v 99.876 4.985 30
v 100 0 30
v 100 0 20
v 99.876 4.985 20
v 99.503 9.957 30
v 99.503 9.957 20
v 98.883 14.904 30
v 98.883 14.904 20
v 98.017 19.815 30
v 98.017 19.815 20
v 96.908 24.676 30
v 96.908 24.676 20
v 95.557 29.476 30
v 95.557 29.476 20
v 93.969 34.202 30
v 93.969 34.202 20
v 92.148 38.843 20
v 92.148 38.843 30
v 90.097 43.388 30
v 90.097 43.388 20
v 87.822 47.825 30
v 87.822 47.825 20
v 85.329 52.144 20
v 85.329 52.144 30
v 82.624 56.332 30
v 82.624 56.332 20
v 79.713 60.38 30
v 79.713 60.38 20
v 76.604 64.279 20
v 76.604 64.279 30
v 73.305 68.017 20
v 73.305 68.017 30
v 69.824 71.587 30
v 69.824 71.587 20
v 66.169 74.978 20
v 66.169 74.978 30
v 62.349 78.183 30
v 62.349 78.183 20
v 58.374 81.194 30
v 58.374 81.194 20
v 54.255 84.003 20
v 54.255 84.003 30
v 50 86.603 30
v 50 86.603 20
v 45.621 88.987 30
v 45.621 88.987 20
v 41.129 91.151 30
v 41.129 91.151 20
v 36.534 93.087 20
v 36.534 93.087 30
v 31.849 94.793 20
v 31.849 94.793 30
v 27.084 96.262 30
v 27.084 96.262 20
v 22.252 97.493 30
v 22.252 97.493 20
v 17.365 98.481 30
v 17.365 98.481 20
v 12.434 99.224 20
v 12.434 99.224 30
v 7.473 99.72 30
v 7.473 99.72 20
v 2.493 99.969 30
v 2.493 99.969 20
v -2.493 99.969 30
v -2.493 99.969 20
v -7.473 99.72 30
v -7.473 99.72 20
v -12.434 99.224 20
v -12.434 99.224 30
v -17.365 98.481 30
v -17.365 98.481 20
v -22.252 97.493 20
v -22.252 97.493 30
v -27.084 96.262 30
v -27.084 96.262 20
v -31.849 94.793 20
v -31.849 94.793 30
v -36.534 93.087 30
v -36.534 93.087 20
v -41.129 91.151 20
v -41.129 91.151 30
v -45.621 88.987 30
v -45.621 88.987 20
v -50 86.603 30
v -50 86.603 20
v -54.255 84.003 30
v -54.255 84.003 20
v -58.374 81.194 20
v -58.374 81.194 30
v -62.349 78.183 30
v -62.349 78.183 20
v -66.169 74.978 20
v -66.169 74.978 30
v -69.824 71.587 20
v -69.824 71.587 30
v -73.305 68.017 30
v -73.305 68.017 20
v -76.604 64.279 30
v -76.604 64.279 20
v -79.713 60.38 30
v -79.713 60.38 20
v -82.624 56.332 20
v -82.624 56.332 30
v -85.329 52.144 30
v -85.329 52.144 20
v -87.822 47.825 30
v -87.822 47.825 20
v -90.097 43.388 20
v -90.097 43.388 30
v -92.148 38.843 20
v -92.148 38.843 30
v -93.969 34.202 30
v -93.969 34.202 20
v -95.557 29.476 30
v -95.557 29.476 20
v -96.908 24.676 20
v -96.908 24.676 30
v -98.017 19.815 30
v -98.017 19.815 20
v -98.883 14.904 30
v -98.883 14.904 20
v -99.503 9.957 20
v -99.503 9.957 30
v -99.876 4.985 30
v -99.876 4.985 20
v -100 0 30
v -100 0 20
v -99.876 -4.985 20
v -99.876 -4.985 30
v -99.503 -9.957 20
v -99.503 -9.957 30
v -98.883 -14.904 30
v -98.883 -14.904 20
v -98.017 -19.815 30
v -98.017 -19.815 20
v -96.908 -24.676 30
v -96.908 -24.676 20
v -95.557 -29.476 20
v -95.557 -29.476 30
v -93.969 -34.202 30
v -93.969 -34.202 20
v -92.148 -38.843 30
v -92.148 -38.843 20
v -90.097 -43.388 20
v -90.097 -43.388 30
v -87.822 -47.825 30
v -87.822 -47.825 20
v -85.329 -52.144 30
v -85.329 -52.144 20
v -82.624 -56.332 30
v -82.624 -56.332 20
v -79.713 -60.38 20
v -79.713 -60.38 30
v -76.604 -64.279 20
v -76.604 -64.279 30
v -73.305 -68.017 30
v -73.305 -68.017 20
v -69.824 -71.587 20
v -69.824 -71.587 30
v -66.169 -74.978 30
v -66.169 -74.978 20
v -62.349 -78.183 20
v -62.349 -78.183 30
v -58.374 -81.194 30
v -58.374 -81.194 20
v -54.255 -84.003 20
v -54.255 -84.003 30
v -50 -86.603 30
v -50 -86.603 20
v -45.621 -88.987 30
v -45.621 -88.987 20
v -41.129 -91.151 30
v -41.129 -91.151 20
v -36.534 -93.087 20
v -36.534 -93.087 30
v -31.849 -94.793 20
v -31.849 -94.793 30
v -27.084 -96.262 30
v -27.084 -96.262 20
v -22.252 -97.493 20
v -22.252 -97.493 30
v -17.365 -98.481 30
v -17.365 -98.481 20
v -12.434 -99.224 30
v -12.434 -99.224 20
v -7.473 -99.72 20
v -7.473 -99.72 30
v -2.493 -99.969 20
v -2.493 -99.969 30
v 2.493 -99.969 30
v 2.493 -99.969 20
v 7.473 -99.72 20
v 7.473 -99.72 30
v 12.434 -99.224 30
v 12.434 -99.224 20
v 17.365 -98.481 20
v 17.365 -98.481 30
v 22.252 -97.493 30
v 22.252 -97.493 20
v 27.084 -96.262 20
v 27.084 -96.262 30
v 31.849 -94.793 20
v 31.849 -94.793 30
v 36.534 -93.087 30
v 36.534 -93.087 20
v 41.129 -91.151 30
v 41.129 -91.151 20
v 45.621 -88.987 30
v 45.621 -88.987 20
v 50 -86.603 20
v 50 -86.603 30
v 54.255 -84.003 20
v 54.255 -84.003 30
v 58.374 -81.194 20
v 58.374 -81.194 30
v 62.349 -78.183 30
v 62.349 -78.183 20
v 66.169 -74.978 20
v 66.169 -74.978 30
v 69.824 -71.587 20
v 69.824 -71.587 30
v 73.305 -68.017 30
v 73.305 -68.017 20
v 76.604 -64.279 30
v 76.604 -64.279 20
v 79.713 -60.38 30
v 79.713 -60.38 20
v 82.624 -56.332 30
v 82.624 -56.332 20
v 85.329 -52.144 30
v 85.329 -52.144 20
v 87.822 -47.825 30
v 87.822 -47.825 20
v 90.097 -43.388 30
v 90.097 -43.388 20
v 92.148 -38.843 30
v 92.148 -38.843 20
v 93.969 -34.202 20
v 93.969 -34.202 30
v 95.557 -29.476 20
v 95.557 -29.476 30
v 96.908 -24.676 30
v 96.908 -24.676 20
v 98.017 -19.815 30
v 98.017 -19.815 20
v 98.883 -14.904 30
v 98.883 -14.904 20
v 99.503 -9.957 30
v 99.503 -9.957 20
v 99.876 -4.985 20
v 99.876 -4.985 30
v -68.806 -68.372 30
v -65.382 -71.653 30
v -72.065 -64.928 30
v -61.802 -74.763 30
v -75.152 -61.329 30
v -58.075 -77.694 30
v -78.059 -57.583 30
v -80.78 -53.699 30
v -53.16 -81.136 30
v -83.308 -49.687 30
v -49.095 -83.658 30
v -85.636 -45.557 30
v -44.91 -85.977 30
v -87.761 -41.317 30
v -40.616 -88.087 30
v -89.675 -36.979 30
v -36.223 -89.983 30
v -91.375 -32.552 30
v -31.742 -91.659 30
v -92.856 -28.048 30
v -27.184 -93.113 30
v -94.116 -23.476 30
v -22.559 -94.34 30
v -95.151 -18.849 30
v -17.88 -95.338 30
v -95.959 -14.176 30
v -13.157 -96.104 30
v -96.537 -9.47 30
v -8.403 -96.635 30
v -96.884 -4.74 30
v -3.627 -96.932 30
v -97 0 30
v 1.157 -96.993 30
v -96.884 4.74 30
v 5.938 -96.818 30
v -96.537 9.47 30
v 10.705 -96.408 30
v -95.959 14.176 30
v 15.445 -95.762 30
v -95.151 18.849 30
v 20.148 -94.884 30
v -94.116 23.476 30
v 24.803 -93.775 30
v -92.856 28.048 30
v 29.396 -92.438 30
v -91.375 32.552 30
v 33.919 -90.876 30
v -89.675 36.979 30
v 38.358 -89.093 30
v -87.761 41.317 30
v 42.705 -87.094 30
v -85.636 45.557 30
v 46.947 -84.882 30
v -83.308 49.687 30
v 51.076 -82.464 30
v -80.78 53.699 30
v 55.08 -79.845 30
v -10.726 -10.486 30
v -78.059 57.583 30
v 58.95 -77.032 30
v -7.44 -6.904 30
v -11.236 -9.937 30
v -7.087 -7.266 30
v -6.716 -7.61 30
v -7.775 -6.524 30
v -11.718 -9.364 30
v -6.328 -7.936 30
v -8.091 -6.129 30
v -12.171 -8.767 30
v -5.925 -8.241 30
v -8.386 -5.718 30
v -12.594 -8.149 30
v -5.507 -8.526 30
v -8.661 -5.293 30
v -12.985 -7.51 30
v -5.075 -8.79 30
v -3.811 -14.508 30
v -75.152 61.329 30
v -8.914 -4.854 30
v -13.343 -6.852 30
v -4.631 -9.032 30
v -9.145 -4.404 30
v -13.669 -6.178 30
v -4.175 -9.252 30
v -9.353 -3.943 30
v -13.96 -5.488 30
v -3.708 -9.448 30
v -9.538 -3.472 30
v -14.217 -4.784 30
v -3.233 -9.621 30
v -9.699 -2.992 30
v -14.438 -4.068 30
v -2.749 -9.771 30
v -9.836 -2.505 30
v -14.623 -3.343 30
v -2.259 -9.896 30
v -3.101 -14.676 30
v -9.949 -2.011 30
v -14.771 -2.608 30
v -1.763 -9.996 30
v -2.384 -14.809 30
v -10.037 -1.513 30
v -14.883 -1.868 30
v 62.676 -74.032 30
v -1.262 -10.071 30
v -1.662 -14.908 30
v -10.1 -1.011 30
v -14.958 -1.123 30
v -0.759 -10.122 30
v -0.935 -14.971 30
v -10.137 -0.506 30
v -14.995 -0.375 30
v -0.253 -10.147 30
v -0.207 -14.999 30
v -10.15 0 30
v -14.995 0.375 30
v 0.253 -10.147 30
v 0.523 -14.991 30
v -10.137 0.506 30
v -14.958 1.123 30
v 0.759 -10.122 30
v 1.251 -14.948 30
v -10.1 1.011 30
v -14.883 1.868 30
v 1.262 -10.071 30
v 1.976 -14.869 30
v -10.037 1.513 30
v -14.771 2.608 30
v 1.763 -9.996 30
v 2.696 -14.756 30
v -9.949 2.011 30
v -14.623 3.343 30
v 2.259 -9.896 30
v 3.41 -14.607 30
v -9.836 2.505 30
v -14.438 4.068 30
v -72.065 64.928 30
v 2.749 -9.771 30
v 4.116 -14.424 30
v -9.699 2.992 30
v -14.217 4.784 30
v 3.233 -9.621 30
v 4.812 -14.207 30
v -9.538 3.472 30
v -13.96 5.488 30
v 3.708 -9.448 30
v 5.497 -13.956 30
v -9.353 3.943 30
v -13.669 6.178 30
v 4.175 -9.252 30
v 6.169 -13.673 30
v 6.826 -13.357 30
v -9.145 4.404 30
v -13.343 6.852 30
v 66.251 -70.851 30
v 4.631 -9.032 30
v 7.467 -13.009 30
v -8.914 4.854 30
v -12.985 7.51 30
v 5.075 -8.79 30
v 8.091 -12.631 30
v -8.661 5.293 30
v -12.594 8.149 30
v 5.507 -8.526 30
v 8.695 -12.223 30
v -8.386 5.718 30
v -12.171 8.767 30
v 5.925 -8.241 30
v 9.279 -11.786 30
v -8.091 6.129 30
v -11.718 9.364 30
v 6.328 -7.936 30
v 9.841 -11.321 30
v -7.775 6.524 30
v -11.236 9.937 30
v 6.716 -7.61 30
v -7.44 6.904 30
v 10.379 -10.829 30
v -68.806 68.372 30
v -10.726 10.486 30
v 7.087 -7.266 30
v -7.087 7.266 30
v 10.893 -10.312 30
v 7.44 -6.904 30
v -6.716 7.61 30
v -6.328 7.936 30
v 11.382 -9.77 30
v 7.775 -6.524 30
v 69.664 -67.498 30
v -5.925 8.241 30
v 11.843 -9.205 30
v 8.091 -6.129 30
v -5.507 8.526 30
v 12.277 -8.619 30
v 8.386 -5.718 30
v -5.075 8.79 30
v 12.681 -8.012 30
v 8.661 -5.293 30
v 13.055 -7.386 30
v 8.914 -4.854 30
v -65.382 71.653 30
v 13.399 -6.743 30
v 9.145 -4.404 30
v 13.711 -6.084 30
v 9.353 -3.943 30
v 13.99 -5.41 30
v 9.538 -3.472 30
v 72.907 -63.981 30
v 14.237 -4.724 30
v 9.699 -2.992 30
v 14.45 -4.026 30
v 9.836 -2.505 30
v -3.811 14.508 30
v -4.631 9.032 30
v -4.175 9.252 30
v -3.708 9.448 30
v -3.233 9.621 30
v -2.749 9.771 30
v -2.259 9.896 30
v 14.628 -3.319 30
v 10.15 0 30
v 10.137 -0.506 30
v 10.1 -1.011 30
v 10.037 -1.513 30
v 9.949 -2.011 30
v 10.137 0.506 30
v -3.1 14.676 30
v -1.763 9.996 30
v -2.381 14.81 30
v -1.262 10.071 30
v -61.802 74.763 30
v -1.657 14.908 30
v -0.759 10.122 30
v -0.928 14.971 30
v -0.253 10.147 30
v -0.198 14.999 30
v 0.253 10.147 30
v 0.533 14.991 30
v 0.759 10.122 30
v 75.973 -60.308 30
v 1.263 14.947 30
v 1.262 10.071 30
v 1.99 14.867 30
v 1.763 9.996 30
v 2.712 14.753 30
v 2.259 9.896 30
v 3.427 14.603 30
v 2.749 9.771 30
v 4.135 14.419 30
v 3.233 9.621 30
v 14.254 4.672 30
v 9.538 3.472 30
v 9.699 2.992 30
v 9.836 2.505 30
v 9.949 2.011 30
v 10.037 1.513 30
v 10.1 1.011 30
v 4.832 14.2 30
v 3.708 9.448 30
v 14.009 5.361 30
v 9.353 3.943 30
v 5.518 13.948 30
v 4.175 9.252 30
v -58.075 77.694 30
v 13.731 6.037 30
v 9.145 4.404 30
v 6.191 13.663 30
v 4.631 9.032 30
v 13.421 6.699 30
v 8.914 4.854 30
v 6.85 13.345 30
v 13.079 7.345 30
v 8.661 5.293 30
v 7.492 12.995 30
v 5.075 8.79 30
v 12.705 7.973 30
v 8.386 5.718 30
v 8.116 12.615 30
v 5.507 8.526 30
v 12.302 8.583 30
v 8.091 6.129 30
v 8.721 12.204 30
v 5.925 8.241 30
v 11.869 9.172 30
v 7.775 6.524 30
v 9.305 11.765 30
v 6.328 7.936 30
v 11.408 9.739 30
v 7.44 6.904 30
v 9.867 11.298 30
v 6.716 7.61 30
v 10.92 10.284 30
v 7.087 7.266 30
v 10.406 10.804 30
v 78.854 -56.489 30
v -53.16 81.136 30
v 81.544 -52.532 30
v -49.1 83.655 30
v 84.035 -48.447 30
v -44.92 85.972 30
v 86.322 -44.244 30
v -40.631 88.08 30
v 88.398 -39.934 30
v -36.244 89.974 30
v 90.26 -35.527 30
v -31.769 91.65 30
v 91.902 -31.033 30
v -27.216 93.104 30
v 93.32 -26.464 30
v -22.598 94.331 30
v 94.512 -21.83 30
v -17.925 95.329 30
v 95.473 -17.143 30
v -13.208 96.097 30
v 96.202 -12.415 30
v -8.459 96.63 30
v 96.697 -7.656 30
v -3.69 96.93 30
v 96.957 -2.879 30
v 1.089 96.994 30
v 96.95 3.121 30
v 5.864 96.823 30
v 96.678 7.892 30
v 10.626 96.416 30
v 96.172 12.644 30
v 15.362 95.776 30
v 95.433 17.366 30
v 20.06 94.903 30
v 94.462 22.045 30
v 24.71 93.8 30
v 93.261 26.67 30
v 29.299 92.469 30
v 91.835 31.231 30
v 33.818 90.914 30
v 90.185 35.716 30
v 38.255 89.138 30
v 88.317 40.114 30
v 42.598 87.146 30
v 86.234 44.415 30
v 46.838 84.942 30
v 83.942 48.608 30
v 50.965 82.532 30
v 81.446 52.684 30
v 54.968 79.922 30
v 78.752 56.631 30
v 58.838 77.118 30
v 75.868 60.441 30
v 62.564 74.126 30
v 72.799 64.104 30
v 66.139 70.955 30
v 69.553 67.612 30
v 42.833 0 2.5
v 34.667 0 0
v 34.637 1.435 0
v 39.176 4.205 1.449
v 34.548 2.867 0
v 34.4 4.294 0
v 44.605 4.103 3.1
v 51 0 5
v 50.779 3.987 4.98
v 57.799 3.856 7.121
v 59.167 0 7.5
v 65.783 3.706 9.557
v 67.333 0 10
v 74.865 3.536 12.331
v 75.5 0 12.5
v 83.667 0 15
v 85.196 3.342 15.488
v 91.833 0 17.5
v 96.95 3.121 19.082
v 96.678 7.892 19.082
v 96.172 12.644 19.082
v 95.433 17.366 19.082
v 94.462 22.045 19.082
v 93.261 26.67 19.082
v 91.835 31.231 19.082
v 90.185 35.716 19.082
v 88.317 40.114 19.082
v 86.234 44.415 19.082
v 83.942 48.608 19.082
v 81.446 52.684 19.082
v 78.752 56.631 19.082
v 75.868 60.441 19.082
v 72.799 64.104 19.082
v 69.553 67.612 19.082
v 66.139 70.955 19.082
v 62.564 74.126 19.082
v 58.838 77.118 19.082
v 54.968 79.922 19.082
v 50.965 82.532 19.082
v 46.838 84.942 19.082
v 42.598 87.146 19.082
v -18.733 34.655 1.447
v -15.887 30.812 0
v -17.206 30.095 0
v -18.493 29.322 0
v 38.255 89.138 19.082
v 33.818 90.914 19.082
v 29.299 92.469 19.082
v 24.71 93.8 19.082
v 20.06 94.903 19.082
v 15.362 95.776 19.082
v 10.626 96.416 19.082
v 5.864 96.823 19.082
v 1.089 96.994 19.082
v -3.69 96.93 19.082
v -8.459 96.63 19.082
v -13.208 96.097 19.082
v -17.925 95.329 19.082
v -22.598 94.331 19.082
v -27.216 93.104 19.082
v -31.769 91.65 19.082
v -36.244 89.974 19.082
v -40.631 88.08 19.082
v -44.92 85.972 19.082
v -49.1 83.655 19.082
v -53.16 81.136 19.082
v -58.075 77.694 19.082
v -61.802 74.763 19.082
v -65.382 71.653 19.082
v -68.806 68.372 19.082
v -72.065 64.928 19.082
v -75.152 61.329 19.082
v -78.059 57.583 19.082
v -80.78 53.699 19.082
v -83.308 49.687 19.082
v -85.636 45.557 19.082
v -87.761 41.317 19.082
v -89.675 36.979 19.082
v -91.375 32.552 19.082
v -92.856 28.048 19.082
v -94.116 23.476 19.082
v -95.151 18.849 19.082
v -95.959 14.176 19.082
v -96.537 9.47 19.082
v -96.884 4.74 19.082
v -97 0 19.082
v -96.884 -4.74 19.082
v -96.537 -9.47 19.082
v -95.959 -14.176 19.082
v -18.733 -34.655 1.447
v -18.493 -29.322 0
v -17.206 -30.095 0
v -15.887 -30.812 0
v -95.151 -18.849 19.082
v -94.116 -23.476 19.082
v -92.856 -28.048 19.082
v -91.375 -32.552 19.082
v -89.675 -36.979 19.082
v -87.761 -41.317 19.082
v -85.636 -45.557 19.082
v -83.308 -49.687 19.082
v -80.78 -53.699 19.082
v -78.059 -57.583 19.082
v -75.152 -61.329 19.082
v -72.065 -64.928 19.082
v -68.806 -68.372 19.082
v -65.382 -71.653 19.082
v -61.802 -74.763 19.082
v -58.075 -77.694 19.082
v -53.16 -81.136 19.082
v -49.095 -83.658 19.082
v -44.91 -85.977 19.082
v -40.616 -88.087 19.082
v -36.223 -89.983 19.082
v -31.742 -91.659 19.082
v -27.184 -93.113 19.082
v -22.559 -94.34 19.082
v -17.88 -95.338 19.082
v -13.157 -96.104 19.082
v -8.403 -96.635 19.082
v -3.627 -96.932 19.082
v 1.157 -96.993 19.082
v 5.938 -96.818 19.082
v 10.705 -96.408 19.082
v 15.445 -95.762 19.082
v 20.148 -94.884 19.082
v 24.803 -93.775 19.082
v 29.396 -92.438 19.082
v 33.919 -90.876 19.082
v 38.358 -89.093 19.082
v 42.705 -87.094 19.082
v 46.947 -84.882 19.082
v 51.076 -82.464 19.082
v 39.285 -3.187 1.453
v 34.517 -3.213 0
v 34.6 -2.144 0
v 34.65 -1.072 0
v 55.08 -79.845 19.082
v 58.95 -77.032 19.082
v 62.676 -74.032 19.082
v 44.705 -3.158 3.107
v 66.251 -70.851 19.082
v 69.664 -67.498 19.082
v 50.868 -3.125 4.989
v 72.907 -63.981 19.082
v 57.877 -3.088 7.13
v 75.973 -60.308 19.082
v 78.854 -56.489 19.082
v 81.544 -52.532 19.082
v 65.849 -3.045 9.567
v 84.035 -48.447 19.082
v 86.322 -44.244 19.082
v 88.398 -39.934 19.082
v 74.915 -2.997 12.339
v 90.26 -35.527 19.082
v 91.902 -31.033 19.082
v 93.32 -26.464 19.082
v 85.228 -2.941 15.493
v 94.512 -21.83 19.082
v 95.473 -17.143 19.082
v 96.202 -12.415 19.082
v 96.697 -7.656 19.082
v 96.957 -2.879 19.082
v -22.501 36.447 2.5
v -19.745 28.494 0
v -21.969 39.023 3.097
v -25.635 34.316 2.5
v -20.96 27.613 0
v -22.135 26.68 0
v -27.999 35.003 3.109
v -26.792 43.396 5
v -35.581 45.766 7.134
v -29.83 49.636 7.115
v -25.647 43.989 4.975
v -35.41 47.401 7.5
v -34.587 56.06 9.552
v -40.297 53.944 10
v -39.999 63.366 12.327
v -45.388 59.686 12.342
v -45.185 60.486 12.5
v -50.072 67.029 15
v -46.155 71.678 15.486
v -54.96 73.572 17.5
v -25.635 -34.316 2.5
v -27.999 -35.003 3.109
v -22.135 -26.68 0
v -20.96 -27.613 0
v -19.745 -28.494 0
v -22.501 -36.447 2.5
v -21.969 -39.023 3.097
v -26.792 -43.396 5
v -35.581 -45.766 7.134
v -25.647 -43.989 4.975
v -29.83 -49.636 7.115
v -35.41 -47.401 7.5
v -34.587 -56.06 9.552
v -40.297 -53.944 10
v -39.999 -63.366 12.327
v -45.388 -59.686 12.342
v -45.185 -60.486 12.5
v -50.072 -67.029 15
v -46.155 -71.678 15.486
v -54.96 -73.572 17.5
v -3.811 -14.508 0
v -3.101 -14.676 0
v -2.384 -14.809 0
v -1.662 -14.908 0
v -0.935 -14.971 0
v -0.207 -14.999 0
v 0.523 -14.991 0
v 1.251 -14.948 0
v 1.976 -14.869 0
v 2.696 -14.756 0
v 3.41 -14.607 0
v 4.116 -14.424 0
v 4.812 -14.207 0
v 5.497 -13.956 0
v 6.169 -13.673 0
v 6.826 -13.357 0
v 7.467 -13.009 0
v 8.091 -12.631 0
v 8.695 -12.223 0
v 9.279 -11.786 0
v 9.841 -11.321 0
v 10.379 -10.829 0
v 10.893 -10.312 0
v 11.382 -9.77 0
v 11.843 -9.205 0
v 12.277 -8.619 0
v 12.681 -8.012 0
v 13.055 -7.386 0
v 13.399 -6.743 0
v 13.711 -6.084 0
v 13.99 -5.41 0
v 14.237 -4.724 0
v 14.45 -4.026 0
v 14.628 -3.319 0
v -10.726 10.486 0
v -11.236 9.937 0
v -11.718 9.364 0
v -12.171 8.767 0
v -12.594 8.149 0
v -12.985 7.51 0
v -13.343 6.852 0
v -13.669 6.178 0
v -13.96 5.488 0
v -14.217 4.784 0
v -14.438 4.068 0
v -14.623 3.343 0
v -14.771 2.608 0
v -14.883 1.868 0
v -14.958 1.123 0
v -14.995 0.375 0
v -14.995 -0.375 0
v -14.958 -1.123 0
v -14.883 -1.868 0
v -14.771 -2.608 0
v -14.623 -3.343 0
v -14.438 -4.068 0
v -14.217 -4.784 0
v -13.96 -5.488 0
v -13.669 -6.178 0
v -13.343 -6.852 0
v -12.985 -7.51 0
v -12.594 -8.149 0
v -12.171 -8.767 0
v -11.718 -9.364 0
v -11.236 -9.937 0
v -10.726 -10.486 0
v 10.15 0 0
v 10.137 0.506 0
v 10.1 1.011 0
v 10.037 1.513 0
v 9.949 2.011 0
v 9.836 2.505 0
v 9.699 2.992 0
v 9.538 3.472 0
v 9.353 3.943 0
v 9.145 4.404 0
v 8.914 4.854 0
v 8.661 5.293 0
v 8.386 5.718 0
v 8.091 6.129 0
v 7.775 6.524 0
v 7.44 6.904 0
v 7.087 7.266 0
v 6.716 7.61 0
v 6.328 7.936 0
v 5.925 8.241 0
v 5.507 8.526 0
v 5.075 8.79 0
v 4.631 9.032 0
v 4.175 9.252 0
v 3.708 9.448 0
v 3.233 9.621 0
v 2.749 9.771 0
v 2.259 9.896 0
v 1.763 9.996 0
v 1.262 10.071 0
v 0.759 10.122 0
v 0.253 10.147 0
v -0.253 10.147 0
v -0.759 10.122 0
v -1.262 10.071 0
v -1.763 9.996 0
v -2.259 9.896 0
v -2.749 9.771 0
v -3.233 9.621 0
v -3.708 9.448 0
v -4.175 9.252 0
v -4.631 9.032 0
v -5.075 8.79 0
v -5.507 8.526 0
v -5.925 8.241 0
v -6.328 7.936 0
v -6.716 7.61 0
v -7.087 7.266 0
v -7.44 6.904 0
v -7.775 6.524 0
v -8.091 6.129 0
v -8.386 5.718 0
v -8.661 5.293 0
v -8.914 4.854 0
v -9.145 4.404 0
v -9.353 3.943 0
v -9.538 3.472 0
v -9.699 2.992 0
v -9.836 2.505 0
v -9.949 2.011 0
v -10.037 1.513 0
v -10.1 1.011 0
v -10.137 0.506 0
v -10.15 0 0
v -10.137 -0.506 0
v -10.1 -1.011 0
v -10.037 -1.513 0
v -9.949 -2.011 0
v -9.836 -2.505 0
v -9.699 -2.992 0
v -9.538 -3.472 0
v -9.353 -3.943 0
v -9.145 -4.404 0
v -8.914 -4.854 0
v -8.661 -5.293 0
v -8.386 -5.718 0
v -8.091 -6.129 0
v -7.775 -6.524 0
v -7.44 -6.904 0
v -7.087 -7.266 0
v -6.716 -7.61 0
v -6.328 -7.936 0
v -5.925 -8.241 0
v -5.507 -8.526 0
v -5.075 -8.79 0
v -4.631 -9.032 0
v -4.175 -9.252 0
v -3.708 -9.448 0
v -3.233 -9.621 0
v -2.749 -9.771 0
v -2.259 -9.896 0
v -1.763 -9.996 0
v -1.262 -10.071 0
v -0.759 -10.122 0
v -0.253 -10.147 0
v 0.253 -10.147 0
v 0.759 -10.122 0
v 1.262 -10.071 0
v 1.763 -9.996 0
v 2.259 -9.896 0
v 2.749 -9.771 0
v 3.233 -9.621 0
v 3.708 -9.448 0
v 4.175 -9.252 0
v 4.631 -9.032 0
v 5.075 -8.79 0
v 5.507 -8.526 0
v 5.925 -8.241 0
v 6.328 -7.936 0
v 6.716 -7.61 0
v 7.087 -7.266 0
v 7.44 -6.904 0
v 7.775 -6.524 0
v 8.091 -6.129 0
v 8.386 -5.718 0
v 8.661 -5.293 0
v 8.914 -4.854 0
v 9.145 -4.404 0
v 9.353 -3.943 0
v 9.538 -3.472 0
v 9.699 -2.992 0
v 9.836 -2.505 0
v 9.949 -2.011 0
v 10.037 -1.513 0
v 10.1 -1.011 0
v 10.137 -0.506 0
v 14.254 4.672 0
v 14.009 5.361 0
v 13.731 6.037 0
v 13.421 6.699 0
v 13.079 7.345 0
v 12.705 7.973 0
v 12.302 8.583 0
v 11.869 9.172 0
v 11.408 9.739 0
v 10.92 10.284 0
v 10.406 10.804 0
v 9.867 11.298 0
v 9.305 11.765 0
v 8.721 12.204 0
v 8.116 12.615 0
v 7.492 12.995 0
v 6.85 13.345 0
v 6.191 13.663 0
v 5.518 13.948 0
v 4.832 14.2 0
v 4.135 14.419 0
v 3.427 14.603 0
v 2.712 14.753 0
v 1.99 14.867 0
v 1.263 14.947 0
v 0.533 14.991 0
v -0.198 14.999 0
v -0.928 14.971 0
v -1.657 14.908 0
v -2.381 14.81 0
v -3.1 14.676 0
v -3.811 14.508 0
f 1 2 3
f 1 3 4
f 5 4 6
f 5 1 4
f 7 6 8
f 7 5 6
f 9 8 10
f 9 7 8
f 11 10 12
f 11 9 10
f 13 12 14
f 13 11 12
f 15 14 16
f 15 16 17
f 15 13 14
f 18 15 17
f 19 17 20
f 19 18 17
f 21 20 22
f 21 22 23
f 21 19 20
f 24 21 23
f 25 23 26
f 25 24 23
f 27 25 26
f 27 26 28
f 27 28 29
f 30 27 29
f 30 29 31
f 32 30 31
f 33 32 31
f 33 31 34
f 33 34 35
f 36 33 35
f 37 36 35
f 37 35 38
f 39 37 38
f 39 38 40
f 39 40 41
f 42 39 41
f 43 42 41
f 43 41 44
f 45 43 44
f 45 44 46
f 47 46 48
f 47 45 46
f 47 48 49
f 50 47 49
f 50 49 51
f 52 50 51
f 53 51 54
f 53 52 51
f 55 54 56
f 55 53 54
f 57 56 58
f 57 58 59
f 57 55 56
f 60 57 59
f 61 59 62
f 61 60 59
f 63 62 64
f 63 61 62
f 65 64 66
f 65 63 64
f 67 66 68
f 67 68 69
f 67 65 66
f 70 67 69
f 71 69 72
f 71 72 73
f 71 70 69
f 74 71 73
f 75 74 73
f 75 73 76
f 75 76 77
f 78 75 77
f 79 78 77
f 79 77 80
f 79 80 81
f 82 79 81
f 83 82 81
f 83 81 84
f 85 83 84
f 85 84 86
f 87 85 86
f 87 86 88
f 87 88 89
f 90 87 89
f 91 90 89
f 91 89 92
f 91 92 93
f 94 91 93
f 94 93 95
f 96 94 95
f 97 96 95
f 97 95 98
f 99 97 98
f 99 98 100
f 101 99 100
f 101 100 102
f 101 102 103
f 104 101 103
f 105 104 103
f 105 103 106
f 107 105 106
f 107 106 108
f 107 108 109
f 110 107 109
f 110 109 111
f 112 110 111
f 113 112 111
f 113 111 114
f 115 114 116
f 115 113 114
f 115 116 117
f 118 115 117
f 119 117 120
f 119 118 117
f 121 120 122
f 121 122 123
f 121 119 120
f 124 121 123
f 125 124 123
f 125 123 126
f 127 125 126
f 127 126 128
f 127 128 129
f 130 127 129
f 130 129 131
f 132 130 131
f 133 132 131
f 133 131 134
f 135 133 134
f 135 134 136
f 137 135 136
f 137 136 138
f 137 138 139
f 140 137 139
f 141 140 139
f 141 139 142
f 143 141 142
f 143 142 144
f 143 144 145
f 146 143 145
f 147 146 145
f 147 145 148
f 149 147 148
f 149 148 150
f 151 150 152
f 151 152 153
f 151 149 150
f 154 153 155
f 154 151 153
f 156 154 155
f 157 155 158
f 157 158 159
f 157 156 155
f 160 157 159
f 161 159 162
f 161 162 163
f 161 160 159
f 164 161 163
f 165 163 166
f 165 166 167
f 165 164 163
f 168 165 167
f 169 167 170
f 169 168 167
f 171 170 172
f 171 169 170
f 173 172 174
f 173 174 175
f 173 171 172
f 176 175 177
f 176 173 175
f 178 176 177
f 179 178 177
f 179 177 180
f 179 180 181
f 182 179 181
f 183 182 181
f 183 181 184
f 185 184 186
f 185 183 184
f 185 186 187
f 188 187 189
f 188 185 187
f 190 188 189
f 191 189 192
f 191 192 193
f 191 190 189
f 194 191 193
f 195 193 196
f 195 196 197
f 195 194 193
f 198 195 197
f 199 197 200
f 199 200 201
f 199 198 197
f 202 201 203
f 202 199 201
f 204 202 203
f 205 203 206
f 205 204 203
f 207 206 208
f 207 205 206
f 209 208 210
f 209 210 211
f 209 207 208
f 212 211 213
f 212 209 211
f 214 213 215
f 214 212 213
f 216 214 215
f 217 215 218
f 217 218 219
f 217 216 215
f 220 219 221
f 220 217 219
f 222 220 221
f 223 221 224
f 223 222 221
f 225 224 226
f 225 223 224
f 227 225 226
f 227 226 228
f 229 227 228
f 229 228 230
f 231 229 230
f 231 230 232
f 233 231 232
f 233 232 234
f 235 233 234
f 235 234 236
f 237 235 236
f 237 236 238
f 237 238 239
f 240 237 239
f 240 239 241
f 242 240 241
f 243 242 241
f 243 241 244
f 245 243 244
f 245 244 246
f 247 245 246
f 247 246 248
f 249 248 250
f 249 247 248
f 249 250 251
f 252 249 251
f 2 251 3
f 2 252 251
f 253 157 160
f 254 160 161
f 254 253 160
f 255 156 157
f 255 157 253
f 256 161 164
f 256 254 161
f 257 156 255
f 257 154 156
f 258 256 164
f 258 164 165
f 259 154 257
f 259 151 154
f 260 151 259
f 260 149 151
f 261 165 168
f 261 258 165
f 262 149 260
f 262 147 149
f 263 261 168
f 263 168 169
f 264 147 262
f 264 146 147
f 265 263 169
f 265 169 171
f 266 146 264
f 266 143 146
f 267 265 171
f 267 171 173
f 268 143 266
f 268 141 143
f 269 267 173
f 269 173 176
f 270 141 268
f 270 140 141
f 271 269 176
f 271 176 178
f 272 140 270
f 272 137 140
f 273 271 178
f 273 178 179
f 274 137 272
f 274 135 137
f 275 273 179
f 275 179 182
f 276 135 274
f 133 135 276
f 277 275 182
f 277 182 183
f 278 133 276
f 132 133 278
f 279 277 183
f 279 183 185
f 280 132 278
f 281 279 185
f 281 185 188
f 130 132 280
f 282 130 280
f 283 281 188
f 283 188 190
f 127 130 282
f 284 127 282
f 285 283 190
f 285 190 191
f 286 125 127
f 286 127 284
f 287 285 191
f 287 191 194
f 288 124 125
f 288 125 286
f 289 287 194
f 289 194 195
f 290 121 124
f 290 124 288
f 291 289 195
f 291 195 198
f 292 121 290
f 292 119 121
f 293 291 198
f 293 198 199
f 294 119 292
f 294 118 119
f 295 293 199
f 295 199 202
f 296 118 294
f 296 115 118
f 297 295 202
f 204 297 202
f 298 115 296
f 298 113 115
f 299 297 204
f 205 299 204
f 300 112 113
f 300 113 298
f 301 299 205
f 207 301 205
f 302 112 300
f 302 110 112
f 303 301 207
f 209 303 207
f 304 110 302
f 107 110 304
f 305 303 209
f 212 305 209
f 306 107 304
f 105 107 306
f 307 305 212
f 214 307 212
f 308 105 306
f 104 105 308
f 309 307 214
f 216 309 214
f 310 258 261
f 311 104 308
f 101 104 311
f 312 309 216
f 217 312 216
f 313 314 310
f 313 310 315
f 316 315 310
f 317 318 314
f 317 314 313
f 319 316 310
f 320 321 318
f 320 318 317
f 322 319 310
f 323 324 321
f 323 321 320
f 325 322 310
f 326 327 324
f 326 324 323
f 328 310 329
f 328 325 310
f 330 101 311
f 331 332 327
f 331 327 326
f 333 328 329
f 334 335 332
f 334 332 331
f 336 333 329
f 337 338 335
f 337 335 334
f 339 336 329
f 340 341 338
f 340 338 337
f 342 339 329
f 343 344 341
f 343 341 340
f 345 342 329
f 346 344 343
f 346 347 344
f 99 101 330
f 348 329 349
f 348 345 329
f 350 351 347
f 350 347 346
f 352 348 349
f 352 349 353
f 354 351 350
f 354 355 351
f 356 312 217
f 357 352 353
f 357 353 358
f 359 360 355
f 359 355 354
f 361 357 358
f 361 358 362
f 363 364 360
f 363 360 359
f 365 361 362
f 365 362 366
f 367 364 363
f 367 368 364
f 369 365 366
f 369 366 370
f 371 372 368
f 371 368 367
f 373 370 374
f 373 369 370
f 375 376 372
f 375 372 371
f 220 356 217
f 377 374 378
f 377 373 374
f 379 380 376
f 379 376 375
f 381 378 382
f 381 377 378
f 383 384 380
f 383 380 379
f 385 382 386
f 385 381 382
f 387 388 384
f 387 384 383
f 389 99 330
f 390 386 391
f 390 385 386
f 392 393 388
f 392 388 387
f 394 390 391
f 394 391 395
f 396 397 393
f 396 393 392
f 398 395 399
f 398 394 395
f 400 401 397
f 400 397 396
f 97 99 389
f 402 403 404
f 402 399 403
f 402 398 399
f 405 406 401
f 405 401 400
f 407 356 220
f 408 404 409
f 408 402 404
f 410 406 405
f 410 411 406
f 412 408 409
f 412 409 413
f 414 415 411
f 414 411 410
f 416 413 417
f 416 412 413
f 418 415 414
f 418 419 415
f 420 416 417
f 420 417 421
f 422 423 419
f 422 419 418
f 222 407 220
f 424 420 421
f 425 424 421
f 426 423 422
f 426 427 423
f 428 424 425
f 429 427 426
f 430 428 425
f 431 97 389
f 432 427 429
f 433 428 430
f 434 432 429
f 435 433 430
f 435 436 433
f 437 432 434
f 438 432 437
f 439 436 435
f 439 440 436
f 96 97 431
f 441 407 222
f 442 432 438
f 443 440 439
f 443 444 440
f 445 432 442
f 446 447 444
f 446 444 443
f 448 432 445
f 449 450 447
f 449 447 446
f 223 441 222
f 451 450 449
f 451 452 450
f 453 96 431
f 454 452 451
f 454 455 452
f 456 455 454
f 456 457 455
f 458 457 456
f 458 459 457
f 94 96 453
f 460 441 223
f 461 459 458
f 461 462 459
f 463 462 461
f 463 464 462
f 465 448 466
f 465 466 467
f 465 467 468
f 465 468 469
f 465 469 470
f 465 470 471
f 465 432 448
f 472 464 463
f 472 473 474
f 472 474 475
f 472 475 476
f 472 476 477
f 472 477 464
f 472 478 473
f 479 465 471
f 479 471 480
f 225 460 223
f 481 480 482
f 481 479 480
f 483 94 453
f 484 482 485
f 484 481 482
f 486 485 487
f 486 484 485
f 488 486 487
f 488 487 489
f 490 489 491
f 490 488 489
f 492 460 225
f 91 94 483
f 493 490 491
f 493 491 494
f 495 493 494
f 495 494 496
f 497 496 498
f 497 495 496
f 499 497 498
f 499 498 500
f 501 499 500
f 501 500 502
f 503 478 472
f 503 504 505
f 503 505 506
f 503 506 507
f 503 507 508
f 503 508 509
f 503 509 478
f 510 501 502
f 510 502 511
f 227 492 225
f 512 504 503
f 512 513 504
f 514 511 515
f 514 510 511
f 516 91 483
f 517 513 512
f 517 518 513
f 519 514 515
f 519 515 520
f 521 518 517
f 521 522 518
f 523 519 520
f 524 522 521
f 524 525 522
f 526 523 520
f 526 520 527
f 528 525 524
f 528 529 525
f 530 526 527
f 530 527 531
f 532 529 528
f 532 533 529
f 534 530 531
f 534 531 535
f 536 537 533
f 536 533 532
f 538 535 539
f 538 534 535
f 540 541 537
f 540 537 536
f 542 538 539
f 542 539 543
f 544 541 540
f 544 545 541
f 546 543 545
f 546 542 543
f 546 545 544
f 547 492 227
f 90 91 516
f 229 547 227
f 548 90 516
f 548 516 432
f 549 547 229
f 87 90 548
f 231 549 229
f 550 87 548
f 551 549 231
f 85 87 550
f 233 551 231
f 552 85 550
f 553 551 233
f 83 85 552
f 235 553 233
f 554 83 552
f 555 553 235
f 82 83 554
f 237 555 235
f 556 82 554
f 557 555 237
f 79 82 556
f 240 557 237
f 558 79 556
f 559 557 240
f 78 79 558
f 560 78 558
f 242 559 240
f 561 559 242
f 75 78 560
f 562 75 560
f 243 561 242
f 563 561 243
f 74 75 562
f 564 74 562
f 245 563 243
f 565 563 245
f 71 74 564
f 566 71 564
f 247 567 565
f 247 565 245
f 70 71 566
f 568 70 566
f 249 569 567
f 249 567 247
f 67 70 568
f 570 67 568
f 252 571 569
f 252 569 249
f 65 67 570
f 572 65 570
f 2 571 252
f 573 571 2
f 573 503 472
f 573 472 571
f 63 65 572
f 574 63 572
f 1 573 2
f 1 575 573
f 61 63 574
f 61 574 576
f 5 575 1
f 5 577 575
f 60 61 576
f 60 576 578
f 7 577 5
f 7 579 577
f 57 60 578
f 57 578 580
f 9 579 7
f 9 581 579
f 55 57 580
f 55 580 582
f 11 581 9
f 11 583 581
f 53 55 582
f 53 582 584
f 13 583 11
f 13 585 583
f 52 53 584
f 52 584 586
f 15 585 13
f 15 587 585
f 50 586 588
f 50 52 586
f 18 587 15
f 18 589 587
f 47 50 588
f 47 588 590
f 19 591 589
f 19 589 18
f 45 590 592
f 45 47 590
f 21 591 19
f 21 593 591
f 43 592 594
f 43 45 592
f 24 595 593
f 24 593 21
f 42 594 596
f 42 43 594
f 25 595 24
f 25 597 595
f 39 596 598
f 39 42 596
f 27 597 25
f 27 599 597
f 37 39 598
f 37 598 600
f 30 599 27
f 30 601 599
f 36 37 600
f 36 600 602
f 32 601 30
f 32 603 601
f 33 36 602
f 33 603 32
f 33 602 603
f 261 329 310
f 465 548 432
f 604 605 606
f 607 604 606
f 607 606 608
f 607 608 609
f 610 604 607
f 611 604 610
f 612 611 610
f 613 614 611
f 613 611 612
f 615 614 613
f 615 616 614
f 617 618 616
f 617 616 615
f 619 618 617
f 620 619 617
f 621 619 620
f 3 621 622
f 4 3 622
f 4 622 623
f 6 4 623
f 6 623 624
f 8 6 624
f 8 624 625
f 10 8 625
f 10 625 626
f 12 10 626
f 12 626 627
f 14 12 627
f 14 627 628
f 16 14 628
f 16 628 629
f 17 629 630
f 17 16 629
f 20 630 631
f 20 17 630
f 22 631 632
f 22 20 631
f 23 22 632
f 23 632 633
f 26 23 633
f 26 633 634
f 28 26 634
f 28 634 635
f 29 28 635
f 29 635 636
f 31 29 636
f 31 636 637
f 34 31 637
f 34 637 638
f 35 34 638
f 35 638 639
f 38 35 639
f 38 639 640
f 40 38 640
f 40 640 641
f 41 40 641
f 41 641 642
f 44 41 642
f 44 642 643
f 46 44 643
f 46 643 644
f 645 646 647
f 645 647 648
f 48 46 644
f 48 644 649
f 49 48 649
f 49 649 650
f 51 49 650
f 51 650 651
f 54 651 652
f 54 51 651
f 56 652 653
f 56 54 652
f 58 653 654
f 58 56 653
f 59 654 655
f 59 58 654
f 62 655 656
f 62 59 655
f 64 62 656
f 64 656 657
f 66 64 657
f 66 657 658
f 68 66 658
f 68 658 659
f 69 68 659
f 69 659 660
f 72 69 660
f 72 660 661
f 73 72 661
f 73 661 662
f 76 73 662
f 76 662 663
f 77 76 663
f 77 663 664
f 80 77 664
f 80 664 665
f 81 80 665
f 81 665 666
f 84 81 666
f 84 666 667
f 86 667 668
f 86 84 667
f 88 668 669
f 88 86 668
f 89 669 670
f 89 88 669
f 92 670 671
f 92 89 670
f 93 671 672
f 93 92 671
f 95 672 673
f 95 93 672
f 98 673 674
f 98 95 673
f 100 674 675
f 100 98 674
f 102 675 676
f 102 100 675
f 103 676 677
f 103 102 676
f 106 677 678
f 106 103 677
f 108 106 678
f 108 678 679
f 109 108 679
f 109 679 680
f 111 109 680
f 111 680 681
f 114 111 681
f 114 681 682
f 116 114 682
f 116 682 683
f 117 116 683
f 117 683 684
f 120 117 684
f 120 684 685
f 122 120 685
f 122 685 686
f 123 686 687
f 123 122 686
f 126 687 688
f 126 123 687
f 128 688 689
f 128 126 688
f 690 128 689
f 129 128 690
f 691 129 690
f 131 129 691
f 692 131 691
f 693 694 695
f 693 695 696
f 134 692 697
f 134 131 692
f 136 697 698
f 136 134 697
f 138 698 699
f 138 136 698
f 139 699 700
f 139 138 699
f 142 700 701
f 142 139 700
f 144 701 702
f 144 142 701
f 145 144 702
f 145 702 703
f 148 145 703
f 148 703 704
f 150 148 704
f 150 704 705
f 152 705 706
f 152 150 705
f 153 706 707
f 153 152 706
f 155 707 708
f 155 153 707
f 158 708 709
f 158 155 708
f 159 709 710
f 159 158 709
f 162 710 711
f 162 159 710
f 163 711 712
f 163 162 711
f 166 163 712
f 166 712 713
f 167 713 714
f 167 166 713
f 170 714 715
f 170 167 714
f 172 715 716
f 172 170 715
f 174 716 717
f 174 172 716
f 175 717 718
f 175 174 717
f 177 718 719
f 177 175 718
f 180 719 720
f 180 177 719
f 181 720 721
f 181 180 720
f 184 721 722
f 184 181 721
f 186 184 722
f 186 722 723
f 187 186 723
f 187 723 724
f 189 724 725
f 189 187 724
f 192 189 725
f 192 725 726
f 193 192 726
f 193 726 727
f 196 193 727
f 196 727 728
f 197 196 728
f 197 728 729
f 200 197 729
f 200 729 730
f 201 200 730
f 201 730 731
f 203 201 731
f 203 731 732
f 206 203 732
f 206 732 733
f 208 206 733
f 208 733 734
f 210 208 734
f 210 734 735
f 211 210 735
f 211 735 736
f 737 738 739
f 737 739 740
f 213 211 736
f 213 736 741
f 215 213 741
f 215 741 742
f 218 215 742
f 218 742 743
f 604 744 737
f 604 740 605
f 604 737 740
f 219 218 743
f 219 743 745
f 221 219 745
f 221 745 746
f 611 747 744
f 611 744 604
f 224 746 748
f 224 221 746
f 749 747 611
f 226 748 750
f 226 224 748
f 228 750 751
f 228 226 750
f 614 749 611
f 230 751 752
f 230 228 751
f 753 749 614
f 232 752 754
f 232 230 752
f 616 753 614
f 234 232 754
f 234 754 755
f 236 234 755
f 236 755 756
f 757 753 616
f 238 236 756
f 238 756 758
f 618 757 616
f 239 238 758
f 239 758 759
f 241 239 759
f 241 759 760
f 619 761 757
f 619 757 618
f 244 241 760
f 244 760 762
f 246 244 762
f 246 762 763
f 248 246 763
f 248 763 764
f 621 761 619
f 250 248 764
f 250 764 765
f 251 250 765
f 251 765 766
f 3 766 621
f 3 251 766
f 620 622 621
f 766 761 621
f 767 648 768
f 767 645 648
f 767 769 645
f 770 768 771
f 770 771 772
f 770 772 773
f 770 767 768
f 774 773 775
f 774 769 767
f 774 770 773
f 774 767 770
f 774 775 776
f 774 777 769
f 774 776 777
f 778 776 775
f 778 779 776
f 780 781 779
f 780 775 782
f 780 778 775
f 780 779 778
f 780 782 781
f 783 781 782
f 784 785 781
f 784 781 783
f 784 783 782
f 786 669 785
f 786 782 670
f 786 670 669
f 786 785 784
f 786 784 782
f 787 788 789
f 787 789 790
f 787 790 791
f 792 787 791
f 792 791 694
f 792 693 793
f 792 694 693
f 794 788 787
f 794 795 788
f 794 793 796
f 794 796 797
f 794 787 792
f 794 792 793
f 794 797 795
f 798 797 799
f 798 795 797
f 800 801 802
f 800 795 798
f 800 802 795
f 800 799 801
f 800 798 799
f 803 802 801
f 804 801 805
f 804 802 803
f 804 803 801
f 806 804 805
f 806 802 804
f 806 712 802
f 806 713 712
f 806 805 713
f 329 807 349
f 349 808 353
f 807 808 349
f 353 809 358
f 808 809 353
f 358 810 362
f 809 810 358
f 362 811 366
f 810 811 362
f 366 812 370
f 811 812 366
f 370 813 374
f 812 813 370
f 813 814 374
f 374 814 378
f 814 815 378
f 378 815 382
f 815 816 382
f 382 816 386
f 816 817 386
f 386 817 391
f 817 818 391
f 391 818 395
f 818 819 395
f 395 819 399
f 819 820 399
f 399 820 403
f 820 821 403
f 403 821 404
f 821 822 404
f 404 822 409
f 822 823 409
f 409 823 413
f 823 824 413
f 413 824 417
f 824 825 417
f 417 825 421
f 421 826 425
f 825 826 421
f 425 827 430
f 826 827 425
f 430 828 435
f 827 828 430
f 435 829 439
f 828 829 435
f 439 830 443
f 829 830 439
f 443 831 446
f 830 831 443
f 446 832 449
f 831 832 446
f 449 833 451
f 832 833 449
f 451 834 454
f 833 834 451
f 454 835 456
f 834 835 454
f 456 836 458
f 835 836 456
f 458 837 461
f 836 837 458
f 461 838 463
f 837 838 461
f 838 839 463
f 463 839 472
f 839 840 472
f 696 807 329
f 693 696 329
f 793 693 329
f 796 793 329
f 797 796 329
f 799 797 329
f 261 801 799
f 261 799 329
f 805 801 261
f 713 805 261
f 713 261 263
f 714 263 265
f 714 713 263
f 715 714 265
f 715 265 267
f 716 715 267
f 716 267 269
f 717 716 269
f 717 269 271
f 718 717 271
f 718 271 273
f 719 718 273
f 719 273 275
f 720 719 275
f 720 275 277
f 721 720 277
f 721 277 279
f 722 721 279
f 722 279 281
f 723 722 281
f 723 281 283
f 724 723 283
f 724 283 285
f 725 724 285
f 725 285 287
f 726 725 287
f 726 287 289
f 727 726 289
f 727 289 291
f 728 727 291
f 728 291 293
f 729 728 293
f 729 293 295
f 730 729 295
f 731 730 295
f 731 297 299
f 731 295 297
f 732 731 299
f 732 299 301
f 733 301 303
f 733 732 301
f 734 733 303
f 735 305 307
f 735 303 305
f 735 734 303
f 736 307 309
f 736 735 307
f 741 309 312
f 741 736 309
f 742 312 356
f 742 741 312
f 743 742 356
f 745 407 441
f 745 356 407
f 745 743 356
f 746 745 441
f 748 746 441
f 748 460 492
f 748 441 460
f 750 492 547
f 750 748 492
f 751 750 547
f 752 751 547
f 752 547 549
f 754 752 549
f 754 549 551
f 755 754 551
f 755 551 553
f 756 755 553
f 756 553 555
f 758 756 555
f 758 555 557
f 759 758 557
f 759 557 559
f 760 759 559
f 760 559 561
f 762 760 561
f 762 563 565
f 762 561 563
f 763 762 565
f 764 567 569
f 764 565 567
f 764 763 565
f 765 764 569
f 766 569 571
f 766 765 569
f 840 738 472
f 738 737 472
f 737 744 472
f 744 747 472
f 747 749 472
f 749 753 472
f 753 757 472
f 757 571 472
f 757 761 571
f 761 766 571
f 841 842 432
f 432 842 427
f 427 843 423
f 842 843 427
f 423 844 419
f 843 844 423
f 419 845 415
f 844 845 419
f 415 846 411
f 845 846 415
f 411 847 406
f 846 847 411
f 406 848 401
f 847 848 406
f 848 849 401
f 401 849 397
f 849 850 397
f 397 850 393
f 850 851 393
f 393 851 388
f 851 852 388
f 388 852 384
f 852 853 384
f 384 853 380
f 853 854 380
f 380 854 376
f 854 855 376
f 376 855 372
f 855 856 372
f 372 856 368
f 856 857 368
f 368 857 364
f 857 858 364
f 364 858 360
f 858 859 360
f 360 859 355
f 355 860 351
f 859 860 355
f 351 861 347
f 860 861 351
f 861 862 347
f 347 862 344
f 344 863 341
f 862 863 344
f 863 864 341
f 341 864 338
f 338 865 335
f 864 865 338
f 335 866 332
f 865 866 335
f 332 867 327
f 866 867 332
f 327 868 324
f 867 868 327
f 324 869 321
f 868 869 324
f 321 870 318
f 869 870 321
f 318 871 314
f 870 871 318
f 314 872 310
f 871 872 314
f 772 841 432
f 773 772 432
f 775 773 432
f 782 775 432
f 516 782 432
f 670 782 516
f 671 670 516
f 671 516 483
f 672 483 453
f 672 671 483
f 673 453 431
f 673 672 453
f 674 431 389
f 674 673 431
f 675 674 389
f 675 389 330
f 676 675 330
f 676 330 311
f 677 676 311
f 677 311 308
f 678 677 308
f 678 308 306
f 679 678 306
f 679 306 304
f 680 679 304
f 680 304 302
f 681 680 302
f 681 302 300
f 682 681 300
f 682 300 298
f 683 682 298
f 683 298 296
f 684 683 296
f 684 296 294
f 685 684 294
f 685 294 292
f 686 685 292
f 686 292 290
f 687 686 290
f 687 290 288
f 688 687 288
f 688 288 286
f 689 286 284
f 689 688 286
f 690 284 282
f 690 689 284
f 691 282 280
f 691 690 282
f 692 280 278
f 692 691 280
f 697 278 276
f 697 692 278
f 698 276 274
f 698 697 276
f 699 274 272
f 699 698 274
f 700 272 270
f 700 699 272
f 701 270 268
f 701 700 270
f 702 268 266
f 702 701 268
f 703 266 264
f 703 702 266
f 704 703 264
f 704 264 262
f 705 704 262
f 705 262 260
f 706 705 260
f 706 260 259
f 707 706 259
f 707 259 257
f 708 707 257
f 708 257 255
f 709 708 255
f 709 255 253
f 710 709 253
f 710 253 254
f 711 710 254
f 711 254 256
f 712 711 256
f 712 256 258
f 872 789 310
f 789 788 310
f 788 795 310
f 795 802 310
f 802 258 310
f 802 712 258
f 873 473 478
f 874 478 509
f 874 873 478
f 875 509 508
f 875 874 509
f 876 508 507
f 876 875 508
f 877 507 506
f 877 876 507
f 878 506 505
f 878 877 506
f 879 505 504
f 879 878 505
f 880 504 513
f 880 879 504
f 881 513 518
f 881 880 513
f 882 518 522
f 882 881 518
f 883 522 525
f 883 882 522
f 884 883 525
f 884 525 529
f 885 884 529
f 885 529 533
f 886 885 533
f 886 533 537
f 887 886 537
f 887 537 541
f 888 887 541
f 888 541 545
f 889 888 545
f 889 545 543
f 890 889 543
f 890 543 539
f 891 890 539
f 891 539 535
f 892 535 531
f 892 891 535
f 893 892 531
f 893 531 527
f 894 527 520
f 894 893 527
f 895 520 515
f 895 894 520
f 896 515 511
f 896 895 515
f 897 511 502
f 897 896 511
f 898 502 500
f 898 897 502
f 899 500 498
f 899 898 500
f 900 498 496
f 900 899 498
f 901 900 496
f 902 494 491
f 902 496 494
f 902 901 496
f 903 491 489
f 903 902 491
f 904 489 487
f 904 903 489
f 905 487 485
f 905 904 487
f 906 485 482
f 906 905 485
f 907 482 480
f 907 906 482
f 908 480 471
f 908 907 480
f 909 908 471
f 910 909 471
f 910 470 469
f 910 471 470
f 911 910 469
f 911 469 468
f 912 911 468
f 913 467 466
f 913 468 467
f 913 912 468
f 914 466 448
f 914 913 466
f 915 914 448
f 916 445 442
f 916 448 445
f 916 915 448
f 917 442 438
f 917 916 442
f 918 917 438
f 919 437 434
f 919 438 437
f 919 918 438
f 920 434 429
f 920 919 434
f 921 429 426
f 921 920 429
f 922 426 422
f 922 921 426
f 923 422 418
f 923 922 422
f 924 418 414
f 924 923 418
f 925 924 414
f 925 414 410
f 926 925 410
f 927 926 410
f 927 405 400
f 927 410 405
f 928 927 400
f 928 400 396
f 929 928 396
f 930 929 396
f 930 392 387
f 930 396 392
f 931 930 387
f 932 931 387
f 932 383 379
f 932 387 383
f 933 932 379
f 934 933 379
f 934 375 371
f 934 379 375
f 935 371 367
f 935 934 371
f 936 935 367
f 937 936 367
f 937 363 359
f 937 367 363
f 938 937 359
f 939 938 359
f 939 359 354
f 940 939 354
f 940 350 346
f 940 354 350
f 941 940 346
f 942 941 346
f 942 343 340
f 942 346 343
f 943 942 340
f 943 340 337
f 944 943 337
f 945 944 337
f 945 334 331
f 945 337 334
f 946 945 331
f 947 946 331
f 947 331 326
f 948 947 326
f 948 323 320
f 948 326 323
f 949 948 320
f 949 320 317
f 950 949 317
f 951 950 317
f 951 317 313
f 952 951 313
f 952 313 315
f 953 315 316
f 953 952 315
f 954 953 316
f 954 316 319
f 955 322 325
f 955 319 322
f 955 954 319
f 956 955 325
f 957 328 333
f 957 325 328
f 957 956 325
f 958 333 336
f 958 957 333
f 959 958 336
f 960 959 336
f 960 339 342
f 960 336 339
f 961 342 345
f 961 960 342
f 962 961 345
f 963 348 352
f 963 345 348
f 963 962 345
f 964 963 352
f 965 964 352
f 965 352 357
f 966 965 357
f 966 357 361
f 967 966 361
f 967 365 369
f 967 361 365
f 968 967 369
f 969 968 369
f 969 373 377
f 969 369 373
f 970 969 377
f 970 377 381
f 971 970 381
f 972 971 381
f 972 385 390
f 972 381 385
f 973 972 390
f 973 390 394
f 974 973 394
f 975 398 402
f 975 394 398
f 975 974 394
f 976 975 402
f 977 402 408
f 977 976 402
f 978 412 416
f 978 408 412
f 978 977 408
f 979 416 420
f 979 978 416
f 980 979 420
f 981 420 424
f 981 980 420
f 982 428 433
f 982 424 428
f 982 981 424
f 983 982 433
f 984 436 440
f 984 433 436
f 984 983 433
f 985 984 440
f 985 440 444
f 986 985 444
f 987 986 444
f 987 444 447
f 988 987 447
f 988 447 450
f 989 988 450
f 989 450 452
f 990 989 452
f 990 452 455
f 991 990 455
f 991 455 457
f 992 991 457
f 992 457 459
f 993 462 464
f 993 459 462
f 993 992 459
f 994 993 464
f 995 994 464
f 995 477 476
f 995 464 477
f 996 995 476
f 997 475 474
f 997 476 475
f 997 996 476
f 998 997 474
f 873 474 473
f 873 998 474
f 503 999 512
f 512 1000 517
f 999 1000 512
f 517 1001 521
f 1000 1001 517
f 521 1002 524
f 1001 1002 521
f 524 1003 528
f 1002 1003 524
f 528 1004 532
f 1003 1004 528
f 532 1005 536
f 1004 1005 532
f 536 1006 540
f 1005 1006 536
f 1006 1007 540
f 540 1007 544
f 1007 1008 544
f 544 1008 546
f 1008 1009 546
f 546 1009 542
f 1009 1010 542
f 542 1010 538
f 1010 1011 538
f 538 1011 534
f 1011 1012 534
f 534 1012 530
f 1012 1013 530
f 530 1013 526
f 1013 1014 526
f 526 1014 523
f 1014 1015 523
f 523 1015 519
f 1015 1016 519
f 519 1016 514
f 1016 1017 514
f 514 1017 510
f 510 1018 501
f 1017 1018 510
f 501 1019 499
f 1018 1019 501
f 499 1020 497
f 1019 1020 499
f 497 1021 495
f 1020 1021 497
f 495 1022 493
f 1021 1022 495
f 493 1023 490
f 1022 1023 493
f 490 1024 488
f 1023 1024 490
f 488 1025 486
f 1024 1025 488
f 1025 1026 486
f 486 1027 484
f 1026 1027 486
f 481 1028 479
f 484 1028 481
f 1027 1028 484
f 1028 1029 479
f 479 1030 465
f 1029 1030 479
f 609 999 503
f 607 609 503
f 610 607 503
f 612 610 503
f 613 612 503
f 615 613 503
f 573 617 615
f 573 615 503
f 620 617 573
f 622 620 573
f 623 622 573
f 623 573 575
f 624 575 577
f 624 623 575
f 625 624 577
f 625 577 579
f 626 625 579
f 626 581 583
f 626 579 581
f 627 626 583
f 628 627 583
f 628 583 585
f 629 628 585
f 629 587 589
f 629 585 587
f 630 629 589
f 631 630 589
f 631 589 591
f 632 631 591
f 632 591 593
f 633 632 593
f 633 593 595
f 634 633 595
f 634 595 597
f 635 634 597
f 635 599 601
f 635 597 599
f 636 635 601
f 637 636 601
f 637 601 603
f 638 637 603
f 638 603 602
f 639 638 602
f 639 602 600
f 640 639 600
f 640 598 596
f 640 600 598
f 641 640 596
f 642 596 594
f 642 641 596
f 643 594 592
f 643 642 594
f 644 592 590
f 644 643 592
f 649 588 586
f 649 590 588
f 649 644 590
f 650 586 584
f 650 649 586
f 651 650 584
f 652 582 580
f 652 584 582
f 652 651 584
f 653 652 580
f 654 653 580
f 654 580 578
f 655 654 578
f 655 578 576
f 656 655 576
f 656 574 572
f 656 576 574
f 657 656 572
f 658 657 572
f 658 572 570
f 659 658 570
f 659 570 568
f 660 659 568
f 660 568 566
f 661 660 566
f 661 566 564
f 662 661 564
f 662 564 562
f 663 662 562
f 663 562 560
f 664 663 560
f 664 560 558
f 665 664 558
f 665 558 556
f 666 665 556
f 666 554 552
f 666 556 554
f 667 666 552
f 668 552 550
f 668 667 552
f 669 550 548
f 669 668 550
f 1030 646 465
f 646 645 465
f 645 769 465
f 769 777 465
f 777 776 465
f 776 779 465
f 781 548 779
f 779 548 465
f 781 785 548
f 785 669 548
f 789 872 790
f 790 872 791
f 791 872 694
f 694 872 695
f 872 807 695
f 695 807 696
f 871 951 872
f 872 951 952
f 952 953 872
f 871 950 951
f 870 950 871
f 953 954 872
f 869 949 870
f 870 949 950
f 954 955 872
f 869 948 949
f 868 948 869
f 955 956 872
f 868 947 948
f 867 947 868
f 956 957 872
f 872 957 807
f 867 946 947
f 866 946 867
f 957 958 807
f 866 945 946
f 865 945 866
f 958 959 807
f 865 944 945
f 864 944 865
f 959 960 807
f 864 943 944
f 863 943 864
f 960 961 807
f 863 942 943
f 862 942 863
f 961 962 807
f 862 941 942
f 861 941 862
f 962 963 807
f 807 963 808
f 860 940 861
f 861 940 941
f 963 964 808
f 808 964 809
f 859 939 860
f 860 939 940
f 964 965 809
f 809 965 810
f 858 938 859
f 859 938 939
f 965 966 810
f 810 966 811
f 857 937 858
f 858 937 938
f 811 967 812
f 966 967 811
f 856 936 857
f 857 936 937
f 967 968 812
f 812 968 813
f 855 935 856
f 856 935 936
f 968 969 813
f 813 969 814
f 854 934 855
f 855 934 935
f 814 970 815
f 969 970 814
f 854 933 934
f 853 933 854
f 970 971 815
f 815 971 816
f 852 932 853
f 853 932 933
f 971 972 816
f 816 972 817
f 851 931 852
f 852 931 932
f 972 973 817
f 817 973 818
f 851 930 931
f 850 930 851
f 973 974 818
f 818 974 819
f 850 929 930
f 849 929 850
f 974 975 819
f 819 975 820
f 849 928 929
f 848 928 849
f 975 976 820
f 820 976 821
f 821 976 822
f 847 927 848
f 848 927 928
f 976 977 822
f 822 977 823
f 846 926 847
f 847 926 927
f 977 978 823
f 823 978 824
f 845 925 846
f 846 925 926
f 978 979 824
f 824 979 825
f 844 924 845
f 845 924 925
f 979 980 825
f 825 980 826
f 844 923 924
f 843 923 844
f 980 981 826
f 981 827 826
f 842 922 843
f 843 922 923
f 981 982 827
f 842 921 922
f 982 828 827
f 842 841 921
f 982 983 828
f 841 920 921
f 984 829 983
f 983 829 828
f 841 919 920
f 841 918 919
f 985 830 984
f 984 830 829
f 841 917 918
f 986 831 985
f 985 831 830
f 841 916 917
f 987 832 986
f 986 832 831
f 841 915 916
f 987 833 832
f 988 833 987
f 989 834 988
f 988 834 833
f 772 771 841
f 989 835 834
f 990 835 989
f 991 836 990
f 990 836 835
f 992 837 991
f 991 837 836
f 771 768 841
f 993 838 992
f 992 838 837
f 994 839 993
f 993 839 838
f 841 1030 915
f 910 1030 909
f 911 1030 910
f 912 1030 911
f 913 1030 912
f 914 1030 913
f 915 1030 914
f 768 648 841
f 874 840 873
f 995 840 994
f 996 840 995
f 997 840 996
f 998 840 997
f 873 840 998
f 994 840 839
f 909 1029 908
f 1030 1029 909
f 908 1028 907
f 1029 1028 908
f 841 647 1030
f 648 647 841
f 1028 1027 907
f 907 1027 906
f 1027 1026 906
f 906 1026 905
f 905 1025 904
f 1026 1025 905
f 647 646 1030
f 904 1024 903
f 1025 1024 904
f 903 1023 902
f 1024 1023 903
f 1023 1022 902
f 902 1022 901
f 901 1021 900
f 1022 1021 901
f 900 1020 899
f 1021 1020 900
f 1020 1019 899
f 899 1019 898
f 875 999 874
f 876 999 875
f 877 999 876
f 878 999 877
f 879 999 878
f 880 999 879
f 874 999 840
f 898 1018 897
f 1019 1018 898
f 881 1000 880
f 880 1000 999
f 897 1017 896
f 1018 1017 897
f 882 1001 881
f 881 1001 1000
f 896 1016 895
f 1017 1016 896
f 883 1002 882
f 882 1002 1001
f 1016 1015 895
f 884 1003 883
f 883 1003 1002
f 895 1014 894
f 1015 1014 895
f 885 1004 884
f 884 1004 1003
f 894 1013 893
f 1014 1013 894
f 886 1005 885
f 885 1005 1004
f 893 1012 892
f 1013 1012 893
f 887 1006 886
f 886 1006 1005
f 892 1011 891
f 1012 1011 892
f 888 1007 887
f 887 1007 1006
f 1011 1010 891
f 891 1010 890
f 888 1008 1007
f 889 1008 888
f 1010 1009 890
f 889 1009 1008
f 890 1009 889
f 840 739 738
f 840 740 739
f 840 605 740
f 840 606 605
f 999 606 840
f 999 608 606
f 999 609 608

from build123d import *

# Parameters (mm, degrees)
CYLINDER_R     = 100
CYLINDER_DEPTH = 10
SKETCH_R       = 100
SKETCH_R_2     = 10.15
PAD_DEPTH      = 40


with BuildPart() as cone:
    # Cone → Cone (revolve)
    with BuildSketch(Plane(origin=(0, 0, -30), x_dir=(1, 0, 0), z_dir=(0, -1, 0))):
        Polygon((0, 0), (2, 0), (100, 30), (0, 30), align=None)
    revolve(axis=Axis((0, 0, -30), (0, 0, 1)))


with BuildPart() as fusion:
    # Cylinder → Cylinder (new body)
    with BuildSketch(Plane.XY):
        Circle(CYLINDER_R)
    extrude(amount=CYLINDER_DEPTH)

    # Fusion: union Cone
    add(cone.part)


with BuildPart() as fusion_1:
    # Fusion placement: moved
    add(fusion.part.moved(Location((0, 0, 20))))


with BuildPart() as common:
    # Sketch → Pad (new body)
    with BuildSketch(Plane.XY):
        Circle(SKETCH_R)
        Circle(SKETCH_R_2, mode=Mode.SUBTRACT)
        with BuildLine():
            ThreePointArc((96.949765, 3.121375), (44.731918, 86.070062), (-53.160067, 81.135734))
            Line((-3.811001, 14.5078), (-53.160067, 81.135734))
            ThreePointArc((14.25383, 4.672079), (7.172763, 13.173894), (-3.811001, 14.5078))
            Line((14.25383, 4.672079), (96.949765, 3.121375))
        make_face(mode=Mode.SUBTRACT)
        with BuildLine():
            Line((14.628164, -3.319158), (96.957277, -2.87862))
            ThreePointArc((-53.160067, -81.135734), (44.839635, -86.013994), (96.957277, -2.87862))
            Line((-3.811001, -14.5078), (-53.160067, -81.135734))
            ThreePointArc((-3.811001, -14.5078), (7.781336, -12.823838), (14.628164, -3.319158))
        make_face(mode=Mode.SUBTRACT)
        with BuildLine():
            Line((-10.726301, -10.485536), (-58.074672, -77.693838))
            ThreePointArc((-58.074672, 77.693838), (-97, 0), (-58.074672, -77.693838))
            Line((-10.726301, 10.485536), (-58.074672, 77.693838))
            ThreePointArc((-10.726301, 10.485536), (-15, 0), (-10.726301, -10.485536))
        make_face(mode=Mode.SUBTRACT)
    extrude(amount=PAD_DEPTH)

    # Common: intersect Fusion
    add(fusion_1.part, mode=Mode.INTERSECT)


solid = common.part
